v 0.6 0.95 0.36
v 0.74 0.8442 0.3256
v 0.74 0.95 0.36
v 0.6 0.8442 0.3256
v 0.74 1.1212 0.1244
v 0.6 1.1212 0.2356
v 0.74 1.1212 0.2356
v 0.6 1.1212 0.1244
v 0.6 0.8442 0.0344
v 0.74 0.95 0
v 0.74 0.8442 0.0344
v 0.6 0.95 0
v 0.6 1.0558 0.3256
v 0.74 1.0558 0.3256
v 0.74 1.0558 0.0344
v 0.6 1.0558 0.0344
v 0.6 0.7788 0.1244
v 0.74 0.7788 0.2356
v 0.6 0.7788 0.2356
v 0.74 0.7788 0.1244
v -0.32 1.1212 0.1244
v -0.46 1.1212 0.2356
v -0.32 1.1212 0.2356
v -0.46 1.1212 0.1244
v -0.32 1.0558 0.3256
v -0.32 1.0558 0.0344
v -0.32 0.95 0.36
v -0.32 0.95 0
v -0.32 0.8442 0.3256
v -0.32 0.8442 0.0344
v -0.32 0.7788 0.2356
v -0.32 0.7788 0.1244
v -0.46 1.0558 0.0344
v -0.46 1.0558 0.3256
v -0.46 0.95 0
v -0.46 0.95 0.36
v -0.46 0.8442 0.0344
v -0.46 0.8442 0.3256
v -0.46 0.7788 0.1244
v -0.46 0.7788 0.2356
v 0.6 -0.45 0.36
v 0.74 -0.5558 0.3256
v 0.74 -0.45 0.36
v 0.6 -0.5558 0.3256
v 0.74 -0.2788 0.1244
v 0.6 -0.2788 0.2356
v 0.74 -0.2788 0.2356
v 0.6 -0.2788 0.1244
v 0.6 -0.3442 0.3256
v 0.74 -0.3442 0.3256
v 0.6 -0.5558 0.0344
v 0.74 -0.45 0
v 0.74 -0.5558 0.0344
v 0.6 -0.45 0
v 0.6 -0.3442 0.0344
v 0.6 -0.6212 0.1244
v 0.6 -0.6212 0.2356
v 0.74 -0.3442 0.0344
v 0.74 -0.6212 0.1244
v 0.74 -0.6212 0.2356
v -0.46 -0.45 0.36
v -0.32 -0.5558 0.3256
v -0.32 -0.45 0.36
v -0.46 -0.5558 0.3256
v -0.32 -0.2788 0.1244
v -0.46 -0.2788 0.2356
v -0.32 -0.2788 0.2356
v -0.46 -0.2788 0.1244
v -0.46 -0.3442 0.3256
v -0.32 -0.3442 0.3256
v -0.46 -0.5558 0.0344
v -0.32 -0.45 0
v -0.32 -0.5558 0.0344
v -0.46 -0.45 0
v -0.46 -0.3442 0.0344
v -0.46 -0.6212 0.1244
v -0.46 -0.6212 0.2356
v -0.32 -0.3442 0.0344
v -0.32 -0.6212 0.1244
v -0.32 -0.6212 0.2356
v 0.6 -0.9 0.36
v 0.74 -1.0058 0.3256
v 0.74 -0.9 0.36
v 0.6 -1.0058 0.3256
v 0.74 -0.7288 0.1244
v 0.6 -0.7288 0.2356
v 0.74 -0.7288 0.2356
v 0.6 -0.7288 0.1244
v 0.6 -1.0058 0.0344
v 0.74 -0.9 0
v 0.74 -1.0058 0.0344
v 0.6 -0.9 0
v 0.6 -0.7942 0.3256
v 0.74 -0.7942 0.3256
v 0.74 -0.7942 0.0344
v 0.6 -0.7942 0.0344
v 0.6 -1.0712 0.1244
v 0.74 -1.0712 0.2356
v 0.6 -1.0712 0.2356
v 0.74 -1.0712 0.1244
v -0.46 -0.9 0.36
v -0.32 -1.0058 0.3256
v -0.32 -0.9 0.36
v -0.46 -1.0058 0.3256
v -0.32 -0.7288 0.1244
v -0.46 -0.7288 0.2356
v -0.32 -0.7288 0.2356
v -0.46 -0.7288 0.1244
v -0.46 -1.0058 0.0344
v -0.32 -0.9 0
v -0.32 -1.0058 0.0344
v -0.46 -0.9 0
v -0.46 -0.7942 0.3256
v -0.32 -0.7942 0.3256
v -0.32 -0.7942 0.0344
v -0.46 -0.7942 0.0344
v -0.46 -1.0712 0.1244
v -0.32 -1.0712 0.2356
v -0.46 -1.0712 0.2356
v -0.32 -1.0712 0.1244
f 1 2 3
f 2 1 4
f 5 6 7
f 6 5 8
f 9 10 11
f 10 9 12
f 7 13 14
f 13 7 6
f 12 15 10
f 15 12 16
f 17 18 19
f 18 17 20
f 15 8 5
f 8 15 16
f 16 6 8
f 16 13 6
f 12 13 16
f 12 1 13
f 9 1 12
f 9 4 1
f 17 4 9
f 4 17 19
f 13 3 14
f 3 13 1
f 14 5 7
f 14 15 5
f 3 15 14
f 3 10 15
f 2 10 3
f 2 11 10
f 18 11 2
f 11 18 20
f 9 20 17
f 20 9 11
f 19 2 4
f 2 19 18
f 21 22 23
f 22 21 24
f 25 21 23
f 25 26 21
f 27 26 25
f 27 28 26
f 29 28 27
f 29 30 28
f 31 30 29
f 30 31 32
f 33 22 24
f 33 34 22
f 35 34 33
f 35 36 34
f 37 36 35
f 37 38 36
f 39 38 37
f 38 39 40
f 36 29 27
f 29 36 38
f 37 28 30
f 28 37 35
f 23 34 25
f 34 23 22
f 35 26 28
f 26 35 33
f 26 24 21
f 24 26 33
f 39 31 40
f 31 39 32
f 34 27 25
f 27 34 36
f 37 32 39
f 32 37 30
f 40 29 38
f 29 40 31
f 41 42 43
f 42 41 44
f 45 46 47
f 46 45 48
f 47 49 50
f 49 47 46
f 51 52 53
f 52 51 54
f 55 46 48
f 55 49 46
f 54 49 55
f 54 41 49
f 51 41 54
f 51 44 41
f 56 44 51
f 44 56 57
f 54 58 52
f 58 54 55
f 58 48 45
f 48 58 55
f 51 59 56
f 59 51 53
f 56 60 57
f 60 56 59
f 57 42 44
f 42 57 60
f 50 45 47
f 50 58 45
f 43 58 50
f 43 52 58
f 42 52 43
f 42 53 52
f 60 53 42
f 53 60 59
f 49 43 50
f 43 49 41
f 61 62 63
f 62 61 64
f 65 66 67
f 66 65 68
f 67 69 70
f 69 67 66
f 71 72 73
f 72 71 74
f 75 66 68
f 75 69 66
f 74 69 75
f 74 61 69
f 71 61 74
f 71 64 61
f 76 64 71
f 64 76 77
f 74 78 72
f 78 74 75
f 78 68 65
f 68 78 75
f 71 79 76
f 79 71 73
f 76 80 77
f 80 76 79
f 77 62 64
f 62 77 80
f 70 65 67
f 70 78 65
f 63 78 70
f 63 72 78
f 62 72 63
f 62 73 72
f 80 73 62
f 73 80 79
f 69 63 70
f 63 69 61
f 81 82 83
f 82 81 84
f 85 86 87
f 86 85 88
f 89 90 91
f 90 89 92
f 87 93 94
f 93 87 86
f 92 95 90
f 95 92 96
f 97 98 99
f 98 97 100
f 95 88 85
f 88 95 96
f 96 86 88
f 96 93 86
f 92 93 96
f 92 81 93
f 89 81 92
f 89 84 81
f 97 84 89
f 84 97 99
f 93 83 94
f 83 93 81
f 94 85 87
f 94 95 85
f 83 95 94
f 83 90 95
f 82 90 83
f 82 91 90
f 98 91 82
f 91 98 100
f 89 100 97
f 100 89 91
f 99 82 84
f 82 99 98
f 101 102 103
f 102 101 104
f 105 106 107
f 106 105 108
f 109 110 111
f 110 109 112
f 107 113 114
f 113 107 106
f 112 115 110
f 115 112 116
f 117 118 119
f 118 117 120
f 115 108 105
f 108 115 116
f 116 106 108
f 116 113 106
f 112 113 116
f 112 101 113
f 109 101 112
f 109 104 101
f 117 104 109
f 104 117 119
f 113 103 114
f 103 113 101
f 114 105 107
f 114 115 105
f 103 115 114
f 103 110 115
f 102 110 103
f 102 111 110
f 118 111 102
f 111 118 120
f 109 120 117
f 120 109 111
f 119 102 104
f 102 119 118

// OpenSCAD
union() {
  union() {
    union() {
      union() {
        union() {
          translate([0.6, 0, 0]) {
            translate([0, 0.95, 0]) {
              translate([0, 0, 0.18]) {
                rotate([0, 90.0, 0]) {
                  cylinder(h = 0.14, r = 0.18, $fn = 10);
                }
              }
            }
          }
          translate([-0.46, 0, 0]) {
            translate([0, 0.95, 0]) {
              translate([0, 0, 0.18]) {
                rotate([0, 90.0, 0]) {
                  cylinder(h = 0.14, r = 0.18, $fn = 10);
                }
              }
            }
          }
        }
        translate([0.6, 0, 0]) {
          translate([0, -0.45, 0]) {
            translate([0, 0, 0.18]) {
              rotate([0, 90.0, 0]) {
                cylinder(h = 0.14, r = 0.18, $fn = 10);
              }
            }
          }
        }
      }
      translate([-0.46, 0, 0]) {
        translate([0, -0.45, 0]) {
          translate([0, 0, 0.18]) {
            rotate([0, 90.0, 0]) {
              cylinder(h = 0.14, r = 0.18, $fn = 10);
            }
          }
        }
      }
    }
    translate([0.6, 0, 0]) {
      translate([0, -0.9, 0]) {
        translate([0, 0, 0.18]) {
          rotate([0, 90.0, 0]) {
            cylinder(h = 0.14, r = 0.18, $fn = 10);
          }
        }
      }
    }
  }
  translate([-0.46, 0, 0]) {
    translate([0, -0.9, 0]) {
      translate([0, 0, 0.18]) {
        rotate([0, 90.0, 0]) {
          cylinder(h = 0.14, r = 0.18, $fn = 10);
        }
      }
    }
  }
}
$fn = 50;
